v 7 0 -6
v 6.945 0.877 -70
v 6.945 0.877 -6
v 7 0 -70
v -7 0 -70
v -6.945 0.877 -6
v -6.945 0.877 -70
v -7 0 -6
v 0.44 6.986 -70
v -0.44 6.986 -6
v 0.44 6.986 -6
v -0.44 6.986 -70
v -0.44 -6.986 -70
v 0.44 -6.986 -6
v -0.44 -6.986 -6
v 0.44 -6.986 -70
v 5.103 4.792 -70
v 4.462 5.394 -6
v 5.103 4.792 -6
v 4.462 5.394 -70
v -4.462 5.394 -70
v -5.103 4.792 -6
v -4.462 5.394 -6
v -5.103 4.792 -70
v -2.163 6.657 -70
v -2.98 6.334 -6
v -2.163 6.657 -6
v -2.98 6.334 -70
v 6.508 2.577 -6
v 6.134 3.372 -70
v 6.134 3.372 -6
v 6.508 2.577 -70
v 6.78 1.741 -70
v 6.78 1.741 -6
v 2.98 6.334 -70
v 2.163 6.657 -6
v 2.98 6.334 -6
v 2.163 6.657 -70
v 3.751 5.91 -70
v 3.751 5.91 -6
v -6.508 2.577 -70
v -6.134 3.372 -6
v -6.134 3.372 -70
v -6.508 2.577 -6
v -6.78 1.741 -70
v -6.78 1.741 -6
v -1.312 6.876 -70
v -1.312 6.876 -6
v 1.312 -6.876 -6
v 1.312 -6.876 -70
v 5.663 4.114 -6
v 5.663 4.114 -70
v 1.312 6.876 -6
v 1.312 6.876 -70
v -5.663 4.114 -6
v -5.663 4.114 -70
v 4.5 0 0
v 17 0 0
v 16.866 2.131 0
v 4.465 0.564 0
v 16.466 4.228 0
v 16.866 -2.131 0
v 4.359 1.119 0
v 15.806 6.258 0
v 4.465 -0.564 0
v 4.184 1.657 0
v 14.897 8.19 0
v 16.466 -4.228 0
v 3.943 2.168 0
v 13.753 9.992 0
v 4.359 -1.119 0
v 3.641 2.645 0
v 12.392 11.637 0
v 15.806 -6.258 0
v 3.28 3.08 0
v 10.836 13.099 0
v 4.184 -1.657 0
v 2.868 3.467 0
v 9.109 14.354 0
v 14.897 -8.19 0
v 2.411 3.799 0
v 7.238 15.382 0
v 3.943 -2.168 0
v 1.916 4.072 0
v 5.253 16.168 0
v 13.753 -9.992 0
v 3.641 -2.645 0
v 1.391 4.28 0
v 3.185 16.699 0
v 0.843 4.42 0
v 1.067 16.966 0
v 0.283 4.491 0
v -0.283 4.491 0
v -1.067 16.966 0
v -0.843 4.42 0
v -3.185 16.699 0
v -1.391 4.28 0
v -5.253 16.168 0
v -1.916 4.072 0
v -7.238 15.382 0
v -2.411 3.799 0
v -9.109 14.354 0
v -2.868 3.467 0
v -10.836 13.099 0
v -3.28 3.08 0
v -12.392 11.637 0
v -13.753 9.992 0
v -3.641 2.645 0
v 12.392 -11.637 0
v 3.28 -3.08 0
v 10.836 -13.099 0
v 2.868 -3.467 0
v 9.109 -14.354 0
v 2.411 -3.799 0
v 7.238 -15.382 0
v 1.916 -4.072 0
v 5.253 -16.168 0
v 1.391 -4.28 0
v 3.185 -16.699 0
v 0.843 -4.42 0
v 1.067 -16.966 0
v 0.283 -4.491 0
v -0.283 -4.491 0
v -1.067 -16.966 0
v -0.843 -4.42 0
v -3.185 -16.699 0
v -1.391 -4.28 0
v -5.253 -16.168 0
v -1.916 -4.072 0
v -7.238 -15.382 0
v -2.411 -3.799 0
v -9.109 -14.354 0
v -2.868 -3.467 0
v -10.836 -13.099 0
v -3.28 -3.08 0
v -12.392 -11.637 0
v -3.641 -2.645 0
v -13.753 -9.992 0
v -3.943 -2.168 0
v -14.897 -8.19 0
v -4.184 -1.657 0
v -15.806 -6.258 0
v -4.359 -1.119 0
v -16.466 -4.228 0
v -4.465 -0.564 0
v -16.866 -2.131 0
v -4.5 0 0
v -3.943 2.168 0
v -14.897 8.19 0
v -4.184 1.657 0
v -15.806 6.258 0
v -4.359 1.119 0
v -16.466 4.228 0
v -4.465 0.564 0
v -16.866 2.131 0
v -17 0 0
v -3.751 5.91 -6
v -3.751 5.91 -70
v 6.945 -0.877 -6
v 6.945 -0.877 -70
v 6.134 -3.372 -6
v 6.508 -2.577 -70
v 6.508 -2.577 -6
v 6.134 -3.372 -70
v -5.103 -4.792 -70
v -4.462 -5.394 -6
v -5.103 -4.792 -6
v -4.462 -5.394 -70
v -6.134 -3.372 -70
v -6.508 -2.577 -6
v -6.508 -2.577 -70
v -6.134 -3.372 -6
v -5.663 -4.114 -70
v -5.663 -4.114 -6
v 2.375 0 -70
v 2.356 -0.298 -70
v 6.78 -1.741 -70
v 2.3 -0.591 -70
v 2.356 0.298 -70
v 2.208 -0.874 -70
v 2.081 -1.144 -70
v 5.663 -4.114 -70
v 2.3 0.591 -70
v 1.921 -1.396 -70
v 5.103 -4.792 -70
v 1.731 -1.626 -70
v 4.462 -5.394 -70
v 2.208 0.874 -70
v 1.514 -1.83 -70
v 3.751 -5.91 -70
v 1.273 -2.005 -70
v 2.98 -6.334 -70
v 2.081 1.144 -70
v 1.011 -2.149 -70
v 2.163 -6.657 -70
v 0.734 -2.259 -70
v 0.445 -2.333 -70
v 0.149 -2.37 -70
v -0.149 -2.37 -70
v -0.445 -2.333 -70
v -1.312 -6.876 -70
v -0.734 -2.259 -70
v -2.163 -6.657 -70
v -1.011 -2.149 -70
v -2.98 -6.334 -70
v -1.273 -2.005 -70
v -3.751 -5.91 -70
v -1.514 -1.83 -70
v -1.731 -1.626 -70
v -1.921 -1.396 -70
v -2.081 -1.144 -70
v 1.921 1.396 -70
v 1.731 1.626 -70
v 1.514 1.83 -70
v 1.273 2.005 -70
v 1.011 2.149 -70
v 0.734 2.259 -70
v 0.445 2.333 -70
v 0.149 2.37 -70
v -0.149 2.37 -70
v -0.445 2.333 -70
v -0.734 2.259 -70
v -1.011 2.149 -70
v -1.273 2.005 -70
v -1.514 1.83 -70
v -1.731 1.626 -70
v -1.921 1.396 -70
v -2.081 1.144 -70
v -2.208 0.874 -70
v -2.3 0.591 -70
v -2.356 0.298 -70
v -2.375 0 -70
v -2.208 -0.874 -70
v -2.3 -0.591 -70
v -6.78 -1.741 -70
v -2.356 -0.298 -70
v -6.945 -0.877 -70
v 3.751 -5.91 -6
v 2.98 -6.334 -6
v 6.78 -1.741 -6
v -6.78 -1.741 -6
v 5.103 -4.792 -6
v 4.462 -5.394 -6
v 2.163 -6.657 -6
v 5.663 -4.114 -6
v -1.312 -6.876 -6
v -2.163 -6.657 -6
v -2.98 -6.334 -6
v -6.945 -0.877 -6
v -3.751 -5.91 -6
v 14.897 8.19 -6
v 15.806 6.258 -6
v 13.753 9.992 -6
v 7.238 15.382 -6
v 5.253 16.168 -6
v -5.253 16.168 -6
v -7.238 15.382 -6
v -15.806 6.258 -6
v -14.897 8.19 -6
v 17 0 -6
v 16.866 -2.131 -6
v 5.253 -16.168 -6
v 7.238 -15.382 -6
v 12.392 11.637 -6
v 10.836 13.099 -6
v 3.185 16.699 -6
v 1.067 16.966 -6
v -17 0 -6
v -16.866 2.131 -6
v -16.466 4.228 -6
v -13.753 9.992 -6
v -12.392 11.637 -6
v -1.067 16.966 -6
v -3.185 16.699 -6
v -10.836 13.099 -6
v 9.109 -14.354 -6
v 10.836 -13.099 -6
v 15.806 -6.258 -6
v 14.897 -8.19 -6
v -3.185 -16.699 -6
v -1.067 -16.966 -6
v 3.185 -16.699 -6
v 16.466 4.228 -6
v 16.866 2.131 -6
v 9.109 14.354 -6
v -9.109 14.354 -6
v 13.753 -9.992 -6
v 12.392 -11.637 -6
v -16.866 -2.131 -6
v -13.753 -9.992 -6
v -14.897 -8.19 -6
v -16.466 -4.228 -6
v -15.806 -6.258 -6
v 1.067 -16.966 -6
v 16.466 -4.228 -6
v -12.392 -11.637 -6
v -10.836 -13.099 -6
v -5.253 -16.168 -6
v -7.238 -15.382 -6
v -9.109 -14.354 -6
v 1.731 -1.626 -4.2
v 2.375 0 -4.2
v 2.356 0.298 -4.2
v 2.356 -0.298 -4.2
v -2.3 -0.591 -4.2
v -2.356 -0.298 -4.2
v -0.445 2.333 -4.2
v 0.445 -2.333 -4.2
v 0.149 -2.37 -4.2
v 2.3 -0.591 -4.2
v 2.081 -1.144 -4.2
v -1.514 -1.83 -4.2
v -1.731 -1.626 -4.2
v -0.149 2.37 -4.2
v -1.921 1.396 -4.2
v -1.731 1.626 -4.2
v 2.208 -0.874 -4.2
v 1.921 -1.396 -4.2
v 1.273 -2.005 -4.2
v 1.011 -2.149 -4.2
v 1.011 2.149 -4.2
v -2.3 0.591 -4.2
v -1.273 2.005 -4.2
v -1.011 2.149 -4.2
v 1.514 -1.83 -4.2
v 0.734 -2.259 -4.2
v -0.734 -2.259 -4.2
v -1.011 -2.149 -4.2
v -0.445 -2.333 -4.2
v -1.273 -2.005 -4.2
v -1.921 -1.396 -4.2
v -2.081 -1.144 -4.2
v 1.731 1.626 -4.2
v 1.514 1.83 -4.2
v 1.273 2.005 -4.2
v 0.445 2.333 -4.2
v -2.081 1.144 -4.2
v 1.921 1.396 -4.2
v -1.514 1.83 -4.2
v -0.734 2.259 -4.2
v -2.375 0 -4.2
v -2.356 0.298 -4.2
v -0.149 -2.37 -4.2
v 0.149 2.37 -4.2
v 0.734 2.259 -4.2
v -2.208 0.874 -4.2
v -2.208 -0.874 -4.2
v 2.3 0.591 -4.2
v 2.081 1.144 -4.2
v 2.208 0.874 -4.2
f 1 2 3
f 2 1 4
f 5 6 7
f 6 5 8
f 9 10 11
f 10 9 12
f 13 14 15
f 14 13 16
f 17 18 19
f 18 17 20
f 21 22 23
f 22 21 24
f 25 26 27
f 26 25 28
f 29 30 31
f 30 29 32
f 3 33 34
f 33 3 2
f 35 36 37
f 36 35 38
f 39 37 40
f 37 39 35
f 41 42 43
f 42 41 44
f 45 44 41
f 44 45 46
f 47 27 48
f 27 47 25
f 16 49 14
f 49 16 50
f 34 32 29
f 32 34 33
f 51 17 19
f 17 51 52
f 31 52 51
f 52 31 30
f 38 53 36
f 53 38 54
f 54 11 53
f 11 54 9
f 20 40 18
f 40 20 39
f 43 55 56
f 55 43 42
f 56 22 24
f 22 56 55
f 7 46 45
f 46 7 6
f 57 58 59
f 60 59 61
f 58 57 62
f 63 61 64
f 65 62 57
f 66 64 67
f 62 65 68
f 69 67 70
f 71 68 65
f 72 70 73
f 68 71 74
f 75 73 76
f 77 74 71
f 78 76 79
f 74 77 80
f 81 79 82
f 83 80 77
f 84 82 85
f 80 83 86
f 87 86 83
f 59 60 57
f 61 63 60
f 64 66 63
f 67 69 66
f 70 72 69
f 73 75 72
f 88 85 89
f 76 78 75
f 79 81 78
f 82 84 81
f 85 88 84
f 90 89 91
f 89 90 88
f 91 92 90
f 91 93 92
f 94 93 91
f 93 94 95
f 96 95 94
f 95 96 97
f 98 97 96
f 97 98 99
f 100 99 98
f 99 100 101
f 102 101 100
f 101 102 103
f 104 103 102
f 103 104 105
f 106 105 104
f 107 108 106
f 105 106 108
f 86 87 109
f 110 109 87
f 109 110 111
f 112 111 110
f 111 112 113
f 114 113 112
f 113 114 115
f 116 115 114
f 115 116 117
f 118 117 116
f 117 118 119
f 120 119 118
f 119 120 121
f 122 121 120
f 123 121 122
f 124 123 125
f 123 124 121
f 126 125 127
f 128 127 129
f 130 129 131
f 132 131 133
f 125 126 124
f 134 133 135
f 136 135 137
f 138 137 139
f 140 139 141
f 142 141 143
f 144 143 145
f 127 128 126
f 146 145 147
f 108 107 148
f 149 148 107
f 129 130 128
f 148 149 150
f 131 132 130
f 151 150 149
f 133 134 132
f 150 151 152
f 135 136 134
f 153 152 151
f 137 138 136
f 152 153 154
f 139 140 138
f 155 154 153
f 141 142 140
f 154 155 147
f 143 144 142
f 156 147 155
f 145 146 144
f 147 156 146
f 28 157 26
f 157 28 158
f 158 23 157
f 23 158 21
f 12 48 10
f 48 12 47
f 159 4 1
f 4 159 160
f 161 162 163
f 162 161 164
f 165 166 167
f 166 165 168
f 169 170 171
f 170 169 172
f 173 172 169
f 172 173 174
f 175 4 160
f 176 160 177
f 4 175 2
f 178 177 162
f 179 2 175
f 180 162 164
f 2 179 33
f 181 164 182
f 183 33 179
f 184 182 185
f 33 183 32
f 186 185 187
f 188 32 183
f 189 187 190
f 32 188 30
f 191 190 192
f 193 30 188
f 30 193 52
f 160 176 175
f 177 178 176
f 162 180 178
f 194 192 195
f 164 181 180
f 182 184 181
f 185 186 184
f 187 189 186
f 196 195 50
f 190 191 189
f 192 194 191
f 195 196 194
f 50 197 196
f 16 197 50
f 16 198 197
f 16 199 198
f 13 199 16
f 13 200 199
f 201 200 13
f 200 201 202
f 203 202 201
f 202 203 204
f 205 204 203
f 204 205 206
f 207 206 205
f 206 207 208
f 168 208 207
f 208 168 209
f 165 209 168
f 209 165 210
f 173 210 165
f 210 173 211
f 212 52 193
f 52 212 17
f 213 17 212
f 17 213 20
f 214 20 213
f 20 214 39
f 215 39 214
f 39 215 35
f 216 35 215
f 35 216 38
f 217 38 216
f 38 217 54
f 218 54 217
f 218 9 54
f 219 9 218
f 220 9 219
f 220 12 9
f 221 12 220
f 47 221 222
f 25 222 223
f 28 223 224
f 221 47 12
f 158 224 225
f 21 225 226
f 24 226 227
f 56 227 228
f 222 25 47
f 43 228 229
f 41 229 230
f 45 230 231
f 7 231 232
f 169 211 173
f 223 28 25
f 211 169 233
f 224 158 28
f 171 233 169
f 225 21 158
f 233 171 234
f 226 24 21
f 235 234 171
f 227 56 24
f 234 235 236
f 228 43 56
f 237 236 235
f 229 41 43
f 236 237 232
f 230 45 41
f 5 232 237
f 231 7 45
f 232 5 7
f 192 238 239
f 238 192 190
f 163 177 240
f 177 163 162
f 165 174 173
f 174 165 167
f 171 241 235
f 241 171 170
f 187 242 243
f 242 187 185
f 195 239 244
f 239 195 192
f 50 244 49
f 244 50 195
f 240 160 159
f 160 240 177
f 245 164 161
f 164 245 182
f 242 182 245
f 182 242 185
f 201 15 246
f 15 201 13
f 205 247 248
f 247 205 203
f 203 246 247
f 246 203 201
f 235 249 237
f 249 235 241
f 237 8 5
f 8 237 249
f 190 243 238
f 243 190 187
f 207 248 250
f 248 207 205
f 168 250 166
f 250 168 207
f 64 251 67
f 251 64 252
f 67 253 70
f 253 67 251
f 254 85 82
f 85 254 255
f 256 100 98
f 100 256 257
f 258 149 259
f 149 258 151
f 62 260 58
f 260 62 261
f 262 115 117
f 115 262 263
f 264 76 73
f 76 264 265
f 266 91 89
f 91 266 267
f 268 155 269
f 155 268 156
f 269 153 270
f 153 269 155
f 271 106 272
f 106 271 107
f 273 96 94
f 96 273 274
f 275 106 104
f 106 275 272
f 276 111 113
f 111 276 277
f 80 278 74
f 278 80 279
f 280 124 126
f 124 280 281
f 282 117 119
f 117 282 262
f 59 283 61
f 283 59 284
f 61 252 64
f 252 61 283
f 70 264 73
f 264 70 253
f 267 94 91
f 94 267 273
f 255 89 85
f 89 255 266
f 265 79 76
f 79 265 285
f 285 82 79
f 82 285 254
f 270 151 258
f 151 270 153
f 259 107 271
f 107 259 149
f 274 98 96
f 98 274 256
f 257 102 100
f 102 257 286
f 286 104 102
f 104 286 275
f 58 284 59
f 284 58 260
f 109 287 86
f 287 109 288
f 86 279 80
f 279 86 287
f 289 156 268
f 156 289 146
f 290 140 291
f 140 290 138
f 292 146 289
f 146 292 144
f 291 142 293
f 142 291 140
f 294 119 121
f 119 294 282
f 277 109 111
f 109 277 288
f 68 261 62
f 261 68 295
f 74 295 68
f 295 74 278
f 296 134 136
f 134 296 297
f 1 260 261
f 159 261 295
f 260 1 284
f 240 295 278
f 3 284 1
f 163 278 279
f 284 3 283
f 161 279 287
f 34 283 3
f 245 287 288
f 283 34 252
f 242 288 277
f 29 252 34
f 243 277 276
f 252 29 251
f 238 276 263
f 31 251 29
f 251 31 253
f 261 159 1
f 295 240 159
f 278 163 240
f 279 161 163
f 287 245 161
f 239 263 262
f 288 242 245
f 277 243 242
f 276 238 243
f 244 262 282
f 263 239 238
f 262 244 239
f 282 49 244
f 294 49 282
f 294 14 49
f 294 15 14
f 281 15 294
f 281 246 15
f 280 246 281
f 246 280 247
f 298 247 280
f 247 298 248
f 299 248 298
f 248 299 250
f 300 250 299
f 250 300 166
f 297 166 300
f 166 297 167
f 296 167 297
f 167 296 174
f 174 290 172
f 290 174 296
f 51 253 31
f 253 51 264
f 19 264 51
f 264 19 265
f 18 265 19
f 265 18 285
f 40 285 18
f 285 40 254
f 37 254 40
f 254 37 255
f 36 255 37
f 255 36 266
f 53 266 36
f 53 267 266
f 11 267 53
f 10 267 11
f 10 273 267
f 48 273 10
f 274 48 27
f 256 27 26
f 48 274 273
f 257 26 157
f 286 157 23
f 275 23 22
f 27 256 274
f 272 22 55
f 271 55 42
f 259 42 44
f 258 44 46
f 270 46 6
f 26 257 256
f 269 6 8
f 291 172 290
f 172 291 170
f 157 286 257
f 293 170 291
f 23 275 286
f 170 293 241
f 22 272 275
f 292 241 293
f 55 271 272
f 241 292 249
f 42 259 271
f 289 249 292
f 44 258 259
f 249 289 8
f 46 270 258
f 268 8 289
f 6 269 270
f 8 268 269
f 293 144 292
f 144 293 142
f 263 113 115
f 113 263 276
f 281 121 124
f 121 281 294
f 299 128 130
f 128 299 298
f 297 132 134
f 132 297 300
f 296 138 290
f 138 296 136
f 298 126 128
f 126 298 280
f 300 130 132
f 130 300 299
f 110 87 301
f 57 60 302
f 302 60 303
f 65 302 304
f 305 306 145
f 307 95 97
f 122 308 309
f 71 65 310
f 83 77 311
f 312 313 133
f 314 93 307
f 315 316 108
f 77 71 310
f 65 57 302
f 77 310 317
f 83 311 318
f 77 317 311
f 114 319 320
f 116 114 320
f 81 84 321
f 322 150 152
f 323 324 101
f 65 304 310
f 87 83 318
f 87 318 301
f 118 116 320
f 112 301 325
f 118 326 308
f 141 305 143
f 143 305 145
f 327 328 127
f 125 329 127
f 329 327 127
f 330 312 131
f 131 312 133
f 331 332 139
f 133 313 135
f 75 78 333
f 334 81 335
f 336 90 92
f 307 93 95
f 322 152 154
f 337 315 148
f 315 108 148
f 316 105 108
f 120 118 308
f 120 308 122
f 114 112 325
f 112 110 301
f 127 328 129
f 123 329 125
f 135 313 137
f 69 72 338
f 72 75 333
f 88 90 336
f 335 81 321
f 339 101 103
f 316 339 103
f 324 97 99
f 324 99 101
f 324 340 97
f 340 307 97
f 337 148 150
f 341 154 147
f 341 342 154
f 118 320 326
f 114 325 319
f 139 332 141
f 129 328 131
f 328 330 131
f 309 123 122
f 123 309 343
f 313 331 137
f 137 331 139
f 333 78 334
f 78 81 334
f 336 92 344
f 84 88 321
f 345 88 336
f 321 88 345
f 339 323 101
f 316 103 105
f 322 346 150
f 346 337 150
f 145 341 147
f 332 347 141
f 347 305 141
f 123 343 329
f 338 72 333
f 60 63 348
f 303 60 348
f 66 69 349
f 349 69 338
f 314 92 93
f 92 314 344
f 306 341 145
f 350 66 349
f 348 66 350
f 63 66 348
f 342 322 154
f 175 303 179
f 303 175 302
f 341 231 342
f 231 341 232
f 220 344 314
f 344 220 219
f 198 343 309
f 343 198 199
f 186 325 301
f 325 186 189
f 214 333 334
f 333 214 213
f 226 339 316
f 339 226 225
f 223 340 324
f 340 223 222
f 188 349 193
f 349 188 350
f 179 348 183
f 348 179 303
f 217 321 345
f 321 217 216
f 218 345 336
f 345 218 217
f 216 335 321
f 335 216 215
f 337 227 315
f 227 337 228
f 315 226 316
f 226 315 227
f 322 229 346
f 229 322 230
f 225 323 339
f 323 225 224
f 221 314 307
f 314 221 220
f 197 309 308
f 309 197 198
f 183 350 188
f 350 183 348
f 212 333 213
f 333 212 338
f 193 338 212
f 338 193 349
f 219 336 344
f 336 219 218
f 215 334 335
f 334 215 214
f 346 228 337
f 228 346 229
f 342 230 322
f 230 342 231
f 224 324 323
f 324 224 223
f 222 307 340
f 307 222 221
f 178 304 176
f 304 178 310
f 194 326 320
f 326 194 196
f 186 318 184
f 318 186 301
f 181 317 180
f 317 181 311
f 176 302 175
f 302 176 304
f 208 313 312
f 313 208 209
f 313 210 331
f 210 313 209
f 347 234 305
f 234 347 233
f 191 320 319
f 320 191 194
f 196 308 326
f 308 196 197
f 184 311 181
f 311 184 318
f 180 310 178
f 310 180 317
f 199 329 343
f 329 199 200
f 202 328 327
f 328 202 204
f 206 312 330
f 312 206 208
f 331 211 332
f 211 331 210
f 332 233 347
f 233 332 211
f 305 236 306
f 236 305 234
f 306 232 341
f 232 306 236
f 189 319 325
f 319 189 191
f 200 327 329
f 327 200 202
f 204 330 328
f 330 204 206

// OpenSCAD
$fn = 50;


difference() {
	union() {
		translate(v = [0, 0, -70.0000000000]) {
			cylinder(h = 70, r = 7.0000000000);
		}
		translate(v = [0, 0, -6.0000000000]) {
			cylinder(h = 6, r = 17.0000000000);
		}
	}
	union() {
		translate(v = [0, 0, 0]) {
			rotate(a = [0, 0, 0]) {
				difference() {
					union() {
						#translate(v = [0, 0, -70.0000000000]) {
							cylinder(h = 70, r = 2.2500000000);
						}
						#translate(v = [0, 0, -4.2000000000]) {
							cylinder(h = 4.2000000000, r1 = 2.3750000000, r2 = 4.5000000000);
						}
						#translate(v = [0, 0, -70.0000000000]) {
							cylinder(h = 70, r = 2.3750000000);
						}
						#translate(v = [0, 0, -70.0000000000]) {
							cylinder(h = 70, r = 2.2500000000);
						}
					}
					union();
				}
			}
		}
	}
}
